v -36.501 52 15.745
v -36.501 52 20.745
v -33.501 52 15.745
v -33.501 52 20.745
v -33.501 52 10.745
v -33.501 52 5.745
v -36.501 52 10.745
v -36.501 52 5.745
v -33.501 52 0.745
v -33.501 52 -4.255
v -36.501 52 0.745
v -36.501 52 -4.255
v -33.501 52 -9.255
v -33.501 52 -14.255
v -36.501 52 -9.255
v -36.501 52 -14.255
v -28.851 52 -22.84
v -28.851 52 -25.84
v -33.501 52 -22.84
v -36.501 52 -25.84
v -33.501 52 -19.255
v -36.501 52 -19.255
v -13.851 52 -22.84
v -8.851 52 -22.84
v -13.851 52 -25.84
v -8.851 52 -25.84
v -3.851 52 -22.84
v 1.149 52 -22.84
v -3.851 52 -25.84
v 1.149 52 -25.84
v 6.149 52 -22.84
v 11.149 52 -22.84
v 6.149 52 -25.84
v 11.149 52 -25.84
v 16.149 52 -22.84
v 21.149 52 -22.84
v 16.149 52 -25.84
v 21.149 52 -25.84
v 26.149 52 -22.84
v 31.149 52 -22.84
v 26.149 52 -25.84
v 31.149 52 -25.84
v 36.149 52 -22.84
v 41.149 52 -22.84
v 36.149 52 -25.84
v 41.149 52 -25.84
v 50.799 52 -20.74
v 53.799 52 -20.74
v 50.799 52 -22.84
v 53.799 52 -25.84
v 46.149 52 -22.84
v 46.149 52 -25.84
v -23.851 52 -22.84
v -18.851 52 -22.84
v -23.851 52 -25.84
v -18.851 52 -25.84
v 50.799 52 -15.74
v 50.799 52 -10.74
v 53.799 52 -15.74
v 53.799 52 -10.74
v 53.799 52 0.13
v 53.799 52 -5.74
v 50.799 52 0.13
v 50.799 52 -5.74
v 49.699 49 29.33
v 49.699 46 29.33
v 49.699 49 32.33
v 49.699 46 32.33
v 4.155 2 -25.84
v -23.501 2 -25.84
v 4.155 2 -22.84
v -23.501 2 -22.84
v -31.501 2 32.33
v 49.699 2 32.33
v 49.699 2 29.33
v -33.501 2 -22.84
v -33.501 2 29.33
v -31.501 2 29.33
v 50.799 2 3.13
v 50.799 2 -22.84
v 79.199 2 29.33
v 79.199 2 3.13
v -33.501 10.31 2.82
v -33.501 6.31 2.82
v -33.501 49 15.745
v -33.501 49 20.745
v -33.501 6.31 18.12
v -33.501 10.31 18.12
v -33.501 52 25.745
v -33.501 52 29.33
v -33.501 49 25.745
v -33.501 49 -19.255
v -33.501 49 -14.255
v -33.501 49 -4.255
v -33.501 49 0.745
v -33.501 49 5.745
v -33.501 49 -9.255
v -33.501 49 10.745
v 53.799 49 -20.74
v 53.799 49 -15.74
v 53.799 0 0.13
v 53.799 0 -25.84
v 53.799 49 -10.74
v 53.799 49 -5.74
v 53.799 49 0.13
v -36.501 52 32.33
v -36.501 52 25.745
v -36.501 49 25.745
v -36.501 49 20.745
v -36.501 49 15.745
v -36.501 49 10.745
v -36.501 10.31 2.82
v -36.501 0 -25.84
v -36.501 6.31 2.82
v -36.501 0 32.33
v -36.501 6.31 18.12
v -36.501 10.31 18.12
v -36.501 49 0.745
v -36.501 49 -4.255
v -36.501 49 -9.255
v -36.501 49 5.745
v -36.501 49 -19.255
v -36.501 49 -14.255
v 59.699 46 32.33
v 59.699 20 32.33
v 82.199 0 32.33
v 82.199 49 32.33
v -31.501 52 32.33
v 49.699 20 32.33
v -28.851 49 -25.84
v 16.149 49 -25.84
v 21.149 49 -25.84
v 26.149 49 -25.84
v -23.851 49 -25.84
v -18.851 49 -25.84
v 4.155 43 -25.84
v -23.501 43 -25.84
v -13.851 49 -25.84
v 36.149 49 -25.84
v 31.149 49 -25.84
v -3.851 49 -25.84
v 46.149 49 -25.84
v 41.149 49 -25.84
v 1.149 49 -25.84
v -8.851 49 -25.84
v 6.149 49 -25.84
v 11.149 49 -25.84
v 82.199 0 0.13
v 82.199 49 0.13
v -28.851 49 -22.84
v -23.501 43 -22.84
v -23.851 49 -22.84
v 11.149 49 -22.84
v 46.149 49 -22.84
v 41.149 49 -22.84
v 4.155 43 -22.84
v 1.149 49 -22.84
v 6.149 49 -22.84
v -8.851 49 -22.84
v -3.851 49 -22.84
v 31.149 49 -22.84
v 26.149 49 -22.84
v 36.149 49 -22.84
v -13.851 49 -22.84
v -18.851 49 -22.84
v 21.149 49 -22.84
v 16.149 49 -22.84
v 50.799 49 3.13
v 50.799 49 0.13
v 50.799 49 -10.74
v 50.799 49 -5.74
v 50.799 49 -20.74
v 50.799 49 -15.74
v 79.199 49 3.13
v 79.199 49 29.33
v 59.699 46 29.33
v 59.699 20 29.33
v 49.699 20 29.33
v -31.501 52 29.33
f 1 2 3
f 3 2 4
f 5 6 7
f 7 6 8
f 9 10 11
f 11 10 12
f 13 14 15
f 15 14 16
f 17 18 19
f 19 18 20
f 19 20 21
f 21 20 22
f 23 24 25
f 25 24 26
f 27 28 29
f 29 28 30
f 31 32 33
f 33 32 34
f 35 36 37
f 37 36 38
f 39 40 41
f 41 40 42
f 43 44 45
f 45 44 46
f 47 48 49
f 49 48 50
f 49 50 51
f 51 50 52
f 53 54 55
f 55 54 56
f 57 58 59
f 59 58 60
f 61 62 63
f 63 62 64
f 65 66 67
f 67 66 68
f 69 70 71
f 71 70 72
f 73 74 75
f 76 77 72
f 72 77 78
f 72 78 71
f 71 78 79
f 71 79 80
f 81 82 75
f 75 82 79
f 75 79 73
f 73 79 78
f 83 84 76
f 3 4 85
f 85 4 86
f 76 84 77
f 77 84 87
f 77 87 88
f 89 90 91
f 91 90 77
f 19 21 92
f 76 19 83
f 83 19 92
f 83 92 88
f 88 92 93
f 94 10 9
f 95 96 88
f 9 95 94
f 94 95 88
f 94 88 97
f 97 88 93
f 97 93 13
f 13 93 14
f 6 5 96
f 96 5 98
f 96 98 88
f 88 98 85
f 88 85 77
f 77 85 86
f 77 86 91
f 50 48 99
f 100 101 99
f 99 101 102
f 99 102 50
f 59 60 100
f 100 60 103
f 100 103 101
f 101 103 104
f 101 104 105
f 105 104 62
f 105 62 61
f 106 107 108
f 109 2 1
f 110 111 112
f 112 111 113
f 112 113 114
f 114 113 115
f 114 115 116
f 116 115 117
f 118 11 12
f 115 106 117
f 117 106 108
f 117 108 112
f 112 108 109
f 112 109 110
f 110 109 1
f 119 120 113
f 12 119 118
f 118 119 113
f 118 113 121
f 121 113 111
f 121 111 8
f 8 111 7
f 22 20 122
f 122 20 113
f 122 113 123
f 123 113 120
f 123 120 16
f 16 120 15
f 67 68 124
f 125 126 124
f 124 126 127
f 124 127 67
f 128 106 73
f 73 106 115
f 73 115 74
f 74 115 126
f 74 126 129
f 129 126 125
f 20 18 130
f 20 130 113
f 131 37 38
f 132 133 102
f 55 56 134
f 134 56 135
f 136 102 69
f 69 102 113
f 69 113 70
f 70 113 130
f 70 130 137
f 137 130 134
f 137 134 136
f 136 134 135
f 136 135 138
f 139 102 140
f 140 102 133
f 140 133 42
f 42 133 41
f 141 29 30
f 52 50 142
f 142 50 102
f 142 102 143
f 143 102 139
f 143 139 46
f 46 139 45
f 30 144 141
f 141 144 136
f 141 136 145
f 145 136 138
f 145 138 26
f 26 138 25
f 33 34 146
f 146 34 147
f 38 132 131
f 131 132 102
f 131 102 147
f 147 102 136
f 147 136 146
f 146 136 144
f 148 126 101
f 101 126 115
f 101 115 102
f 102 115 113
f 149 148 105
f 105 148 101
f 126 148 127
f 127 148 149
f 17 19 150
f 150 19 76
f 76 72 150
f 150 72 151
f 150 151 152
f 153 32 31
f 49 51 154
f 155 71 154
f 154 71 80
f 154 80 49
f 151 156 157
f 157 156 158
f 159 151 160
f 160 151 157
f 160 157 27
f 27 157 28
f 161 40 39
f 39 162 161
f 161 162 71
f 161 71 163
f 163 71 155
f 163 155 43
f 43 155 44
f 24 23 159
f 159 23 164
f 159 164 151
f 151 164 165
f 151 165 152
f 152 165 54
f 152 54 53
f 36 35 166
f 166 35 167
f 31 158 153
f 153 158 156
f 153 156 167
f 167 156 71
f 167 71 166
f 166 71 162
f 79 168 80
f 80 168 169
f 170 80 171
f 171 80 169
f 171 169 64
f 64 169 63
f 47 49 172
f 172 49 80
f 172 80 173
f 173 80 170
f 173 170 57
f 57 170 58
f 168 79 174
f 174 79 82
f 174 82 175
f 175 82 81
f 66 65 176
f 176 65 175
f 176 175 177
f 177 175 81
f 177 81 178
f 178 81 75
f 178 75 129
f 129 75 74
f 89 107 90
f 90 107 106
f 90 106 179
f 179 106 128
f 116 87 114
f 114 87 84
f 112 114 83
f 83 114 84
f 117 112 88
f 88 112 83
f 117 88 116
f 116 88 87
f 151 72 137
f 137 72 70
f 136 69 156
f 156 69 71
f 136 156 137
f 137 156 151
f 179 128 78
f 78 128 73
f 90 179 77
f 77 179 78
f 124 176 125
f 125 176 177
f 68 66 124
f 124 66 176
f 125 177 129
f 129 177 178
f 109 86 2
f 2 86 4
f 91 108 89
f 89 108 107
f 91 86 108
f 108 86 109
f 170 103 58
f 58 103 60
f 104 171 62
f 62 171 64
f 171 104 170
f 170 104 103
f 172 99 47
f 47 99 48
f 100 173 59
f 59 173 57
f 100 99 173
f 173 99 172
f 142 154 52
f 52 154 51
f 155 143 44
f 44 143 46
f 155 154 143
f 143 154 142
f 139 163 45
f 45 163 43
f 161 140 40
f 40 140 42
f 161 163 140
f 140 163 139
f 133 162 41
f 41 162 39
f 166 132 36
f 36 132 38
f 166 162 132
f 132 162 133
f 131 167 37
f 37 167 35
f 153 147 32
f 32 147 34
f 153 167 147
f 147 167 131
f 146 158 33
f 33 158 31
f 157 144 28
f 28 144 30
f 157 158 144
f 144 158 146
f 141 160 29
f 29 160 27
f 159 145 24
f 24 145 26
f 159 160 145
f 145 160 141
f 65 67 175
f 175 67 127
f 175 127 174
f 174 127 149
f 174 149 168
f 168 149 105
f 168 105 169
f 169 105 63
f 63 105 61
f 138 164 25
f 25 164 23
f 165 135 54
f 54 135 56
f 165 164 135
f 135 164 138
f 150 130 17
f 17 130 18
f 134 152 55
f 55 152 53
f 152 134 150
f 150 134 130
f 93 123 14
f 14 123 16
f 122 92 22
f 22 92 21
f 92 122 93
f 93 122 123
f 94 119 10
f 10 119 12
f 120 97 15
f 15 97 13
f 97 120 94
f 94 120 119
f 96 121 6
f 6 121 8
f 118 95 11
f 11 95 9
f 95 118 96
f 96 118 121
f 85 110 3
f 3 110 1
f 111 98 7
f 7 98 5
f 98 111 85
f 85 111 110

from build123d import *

# Parameters (mm, degrees)
SKETCH1_W           = 90.3
SKETCH1_H           = 58.17
BOSS_EXTRUDE1_DEPTH = 2
SKETCH4_W           = 28.4
SKETCH4_H           = 32.2
BOSS_EXTRUDE2_DEPTH = 2
BOSS_EXTRUDE3_DEPTH = 20
SKETCH6_W           = 3
SKETCH6_H           = 58.17
BOSS_EXTRUDE4_DEPTH = 50
SKETCH7_W           = 15.3
SKETCH7_H           = 4
CUT_EXTRUDE1_DEPTH  = 4
SKETCH8_W           = 10
SKETCH8_H           = 3
SKETCH8_W_2         = 22
BOSS_EXTRUDE5_DEPTH = 50
SKETCH9_W           = 3
SKETCH9_H           = 9
BOSS_EXTRUDE7_DEPTH = 30
BOSS_EXTRUDE8_DEPTH = 30
SKETCH11_W          = 2
SKETCH11_H          = 3
BOSS_EXTRUDE9_DEPTH = 50
SKETCH12_W          = 10
SKETCH12_H          = 26
CUT_EXTRUDE2_DEPTH  = 5
SKETCH13_W          = 3
SKETCH13_H          = 5
SKETCH13_W_2        = 5
SKETCH13_H_2        = 3
SKETCH13_W_3        = 32.5
SKETCH13_H_3        = 32.2
CUT_EXTRUDE3_DEPTH  = 3


with BuildPart() as part:
    # Sketch1 → Boss-Extrude1 (new body)
    with BuildSketch(Plane(origin=(0, 0, 0), x_dir=(1, 0, 0), z_dir=(0, 1, 0))):
        with Locations((8.649006711, -3.245187919)):
            Rectangle(SKETCH1_W, SKETCH1_H)
    extrude(amount=BOSS_EXTRUDE1_DEPTH)

    # Sketch4 → Boss-Extrude2 (add)
    with BuildSketch(Plane(origin=(0, 2, 0), x_dir=(1, 0, 0), z_dir=(0, 1, 0))):
        with Locations((67.999006711, -16.230187919)):
            Rectangle(SKETCH4_W, SKETCH4_H)
    extrude(amount=-BOSS_EXTRUDE2_DEPTH)

    # Sketch5 → Boss-Extrude3 (add)
    with BuildSketch(Plane(origin=(0, 2, 0), x_dir=(1, 0, 0), z_dir=(0, 1, 0))):
        Polygon((82.199006711, -0.130187919), (82.199006711, -32.330187919), (49.699006711, -32.330187919), (49.699006711, -29.330187919), (79.199006711, -29.330187919), (79.199006711, -3.130187919), (50.799006711, -3.130187919), (50.799006711, 22.839812081), (26.155250354, 22.839812081), (26.155250354, 25.839812081), (53.799006711, 25.839812081), (53.799006711, -0.130187919), align=None)
    extrude(amount=BOSS_EXTRUDE3_DEPTH)

    # Sketch6 → Boss-Extrude4 (add)
    with BuildSketch(Plane(origin=(0, 2, 0), x_dir=(1, 0, 0), z_dir=(0, 1, 0))):
        with Locations((-35.000993289, -3.245187919)):
            Rectangle(SKETCH6_W, SKETCH6_H)
    extrude(amount=BOSS_EXTRUDE4_DEPTH)

    # Sketch7 → Cut-Extrude1 (cut)
    with BuildSketch(Plane.ZY.offset(36.500993289)):
        with Locations((10.470187919, 8.31)):
            Rectangle(SKETCH7_W, SKETCH7_H)
    extrude(amount=-CUT_EXTRUDE1_DEPTH, mode=Mode.SUBTRACT)

    # Sketch8 → Boss-Extrude5 (add)
    with BuildSketch(Plane(origin=(0, 2, 0), x_dir=(1, 0, 0), z_dir=(0, 1, 0))):
        with Locations((-28.500993289, 24.339812081)):
            Rectangle(SKETCH8_W, SKETCH8_H)
        with Locations((15.155250354, 24.339812081)):
            Rectangle(SKETCH8_W_2, SKETCH8_H)
    extrude(amount=BOSS_EXTRUDE5_DEPTH)

    # Sketch9 → Boss-Extrude7 (add)
    with BuildSketch(Plane.ZY.offset(-4.155250354)):
        with Locations((-24.339812081, 47.5)):
            Rectangle(SKETCH9_W, SKETCH9_H)
    extrude(amount=BOSS_EXTRUDE7_DEPTH)

    # Sketch10 → Boss-Extrude8 (add)
    with BuildSketch(Plane(origin=(0, 22, 0), x_dir=(1, 0, 0), z_dir=(0, 1, 0))):
        Polygon((26.155250354, 25.839812081), (26.155250354, 22.839812081), (50.799006711, 22.839812081), (50.799006711, -3.130187919), (79.199006711, -3.130187919), (79.199006711, -29.330187919), (49.699006711, -29.330187919), (49.699006711, -32.330187919), (82.199006711, -32.330187919), (82.199006711, -0.130187919), (53.799006711, -0.130187919), (53.799006711, 25.839812081), align=None)
    extrude(amount=BOSS_EXTRUDE8_DEPTH)

    # Sketch11 → Boss-Extrude9 (add)
    with BuildSketch(Plane(origin=(0, 2, 0), x_dir=(1, 0, 0), z_dir=(0, 1, 0))):
        with Locations((-32.500993289, -30.830187919)):
            Rectangle(SKETCH11_W, SKETCH11_H)
    extrude(amount=BOSS_EXTRUDE9_DEPTH)

    # Sketch12 → Cut-Extrude2 (cut)
    with BuildSketch(Plane.XY.offset(32.330187919)):
        with Locations((54.699006711, 33)):
            Rectangle(SKETCH12_W, SKETCH12_H)
    extrude(amount=-CUT_EXTRUDE2_DEPTH, mode=Mode.SUBTRACT)

    # Sketch13 → Cut-Extrude3 (cut)
    with BuildSketch(Plane(origin=(0, 52, 0), x_dir=(1, 0, 0), z_dir=(0, 1, 0))):
        with Locations((-35.000993289, -23.245187919)):
            Rectangle(SKETCH13_W, SKETCH13_H)
        with Locations((-35.000993289, -13.245187919)):
            Rectangle(SKETCH13_W, SKETCH13_H)
        with Locations((-35.000993289, -3.245187919)):
            Rectangle(SKETCH13_W, SKETCH13_H)
        with Locations((-35.000993289, 6.754812081)):
            Rectangle(SKETCH13_W, SKETCH13_H)
        with Locations((-35.000993289, 16.754812081)):
            Rectangle(SKETCH13_W, SKETCH13_H)
        with Locations((-26.350993289, 24.339812081)):
            Rectangle(SKETCH13_W_2, SKETCH13_H_2)
        with Locations((-16.350993289, 24.339812081)):
            Rectangle(SKETCH13_W_2, SKETCH13_H_2)
        with Locations((-6.350993289, 24.339812081)):
            Rectangle(SKETCH13_W_2, SKETCH13_H_2)
        with Locations((3.649006711, 24.339812081)):
            Rectangle(SKETCH13_W_2, SKETCH13_H_2)
        with Locations((13.649006711, 24.339812081)):
            Rectangle(SKETCH13_W_2, SKETCH13_H_2)
        with Locations((23.649006711, 24.339812081)):
            Rectangle(SKETCH13_W_2, SKETCH13_H_2)
        with Locations((33.649006711, 24.339812081)):
            Rectangle(SKETCH13_W_2, SKETCH13_H_2)
        with Locations((43.649006711, 24.339812081)):
            Rectangle(SKETCH13_W_2, SKETCH13_H_2)
        with Locations((65.949006711, -16.230187919)):
            Rectangle(SKETCH13_W_3, SKETCH13_H_3)
        with Locations((52.299006711, 18.239812081)):
            Rectangle(SKETCH13_W, SKETCH13_H)
        with Locations((52.299006711, 8.239812081)):
            Rectangle(SKETCH13_W, SKETCH13_H)
    extrude(amount=-CUT_EXTRUDE3_DEPTH, mode=Mode.SUBTRACT)


solid = part.part
